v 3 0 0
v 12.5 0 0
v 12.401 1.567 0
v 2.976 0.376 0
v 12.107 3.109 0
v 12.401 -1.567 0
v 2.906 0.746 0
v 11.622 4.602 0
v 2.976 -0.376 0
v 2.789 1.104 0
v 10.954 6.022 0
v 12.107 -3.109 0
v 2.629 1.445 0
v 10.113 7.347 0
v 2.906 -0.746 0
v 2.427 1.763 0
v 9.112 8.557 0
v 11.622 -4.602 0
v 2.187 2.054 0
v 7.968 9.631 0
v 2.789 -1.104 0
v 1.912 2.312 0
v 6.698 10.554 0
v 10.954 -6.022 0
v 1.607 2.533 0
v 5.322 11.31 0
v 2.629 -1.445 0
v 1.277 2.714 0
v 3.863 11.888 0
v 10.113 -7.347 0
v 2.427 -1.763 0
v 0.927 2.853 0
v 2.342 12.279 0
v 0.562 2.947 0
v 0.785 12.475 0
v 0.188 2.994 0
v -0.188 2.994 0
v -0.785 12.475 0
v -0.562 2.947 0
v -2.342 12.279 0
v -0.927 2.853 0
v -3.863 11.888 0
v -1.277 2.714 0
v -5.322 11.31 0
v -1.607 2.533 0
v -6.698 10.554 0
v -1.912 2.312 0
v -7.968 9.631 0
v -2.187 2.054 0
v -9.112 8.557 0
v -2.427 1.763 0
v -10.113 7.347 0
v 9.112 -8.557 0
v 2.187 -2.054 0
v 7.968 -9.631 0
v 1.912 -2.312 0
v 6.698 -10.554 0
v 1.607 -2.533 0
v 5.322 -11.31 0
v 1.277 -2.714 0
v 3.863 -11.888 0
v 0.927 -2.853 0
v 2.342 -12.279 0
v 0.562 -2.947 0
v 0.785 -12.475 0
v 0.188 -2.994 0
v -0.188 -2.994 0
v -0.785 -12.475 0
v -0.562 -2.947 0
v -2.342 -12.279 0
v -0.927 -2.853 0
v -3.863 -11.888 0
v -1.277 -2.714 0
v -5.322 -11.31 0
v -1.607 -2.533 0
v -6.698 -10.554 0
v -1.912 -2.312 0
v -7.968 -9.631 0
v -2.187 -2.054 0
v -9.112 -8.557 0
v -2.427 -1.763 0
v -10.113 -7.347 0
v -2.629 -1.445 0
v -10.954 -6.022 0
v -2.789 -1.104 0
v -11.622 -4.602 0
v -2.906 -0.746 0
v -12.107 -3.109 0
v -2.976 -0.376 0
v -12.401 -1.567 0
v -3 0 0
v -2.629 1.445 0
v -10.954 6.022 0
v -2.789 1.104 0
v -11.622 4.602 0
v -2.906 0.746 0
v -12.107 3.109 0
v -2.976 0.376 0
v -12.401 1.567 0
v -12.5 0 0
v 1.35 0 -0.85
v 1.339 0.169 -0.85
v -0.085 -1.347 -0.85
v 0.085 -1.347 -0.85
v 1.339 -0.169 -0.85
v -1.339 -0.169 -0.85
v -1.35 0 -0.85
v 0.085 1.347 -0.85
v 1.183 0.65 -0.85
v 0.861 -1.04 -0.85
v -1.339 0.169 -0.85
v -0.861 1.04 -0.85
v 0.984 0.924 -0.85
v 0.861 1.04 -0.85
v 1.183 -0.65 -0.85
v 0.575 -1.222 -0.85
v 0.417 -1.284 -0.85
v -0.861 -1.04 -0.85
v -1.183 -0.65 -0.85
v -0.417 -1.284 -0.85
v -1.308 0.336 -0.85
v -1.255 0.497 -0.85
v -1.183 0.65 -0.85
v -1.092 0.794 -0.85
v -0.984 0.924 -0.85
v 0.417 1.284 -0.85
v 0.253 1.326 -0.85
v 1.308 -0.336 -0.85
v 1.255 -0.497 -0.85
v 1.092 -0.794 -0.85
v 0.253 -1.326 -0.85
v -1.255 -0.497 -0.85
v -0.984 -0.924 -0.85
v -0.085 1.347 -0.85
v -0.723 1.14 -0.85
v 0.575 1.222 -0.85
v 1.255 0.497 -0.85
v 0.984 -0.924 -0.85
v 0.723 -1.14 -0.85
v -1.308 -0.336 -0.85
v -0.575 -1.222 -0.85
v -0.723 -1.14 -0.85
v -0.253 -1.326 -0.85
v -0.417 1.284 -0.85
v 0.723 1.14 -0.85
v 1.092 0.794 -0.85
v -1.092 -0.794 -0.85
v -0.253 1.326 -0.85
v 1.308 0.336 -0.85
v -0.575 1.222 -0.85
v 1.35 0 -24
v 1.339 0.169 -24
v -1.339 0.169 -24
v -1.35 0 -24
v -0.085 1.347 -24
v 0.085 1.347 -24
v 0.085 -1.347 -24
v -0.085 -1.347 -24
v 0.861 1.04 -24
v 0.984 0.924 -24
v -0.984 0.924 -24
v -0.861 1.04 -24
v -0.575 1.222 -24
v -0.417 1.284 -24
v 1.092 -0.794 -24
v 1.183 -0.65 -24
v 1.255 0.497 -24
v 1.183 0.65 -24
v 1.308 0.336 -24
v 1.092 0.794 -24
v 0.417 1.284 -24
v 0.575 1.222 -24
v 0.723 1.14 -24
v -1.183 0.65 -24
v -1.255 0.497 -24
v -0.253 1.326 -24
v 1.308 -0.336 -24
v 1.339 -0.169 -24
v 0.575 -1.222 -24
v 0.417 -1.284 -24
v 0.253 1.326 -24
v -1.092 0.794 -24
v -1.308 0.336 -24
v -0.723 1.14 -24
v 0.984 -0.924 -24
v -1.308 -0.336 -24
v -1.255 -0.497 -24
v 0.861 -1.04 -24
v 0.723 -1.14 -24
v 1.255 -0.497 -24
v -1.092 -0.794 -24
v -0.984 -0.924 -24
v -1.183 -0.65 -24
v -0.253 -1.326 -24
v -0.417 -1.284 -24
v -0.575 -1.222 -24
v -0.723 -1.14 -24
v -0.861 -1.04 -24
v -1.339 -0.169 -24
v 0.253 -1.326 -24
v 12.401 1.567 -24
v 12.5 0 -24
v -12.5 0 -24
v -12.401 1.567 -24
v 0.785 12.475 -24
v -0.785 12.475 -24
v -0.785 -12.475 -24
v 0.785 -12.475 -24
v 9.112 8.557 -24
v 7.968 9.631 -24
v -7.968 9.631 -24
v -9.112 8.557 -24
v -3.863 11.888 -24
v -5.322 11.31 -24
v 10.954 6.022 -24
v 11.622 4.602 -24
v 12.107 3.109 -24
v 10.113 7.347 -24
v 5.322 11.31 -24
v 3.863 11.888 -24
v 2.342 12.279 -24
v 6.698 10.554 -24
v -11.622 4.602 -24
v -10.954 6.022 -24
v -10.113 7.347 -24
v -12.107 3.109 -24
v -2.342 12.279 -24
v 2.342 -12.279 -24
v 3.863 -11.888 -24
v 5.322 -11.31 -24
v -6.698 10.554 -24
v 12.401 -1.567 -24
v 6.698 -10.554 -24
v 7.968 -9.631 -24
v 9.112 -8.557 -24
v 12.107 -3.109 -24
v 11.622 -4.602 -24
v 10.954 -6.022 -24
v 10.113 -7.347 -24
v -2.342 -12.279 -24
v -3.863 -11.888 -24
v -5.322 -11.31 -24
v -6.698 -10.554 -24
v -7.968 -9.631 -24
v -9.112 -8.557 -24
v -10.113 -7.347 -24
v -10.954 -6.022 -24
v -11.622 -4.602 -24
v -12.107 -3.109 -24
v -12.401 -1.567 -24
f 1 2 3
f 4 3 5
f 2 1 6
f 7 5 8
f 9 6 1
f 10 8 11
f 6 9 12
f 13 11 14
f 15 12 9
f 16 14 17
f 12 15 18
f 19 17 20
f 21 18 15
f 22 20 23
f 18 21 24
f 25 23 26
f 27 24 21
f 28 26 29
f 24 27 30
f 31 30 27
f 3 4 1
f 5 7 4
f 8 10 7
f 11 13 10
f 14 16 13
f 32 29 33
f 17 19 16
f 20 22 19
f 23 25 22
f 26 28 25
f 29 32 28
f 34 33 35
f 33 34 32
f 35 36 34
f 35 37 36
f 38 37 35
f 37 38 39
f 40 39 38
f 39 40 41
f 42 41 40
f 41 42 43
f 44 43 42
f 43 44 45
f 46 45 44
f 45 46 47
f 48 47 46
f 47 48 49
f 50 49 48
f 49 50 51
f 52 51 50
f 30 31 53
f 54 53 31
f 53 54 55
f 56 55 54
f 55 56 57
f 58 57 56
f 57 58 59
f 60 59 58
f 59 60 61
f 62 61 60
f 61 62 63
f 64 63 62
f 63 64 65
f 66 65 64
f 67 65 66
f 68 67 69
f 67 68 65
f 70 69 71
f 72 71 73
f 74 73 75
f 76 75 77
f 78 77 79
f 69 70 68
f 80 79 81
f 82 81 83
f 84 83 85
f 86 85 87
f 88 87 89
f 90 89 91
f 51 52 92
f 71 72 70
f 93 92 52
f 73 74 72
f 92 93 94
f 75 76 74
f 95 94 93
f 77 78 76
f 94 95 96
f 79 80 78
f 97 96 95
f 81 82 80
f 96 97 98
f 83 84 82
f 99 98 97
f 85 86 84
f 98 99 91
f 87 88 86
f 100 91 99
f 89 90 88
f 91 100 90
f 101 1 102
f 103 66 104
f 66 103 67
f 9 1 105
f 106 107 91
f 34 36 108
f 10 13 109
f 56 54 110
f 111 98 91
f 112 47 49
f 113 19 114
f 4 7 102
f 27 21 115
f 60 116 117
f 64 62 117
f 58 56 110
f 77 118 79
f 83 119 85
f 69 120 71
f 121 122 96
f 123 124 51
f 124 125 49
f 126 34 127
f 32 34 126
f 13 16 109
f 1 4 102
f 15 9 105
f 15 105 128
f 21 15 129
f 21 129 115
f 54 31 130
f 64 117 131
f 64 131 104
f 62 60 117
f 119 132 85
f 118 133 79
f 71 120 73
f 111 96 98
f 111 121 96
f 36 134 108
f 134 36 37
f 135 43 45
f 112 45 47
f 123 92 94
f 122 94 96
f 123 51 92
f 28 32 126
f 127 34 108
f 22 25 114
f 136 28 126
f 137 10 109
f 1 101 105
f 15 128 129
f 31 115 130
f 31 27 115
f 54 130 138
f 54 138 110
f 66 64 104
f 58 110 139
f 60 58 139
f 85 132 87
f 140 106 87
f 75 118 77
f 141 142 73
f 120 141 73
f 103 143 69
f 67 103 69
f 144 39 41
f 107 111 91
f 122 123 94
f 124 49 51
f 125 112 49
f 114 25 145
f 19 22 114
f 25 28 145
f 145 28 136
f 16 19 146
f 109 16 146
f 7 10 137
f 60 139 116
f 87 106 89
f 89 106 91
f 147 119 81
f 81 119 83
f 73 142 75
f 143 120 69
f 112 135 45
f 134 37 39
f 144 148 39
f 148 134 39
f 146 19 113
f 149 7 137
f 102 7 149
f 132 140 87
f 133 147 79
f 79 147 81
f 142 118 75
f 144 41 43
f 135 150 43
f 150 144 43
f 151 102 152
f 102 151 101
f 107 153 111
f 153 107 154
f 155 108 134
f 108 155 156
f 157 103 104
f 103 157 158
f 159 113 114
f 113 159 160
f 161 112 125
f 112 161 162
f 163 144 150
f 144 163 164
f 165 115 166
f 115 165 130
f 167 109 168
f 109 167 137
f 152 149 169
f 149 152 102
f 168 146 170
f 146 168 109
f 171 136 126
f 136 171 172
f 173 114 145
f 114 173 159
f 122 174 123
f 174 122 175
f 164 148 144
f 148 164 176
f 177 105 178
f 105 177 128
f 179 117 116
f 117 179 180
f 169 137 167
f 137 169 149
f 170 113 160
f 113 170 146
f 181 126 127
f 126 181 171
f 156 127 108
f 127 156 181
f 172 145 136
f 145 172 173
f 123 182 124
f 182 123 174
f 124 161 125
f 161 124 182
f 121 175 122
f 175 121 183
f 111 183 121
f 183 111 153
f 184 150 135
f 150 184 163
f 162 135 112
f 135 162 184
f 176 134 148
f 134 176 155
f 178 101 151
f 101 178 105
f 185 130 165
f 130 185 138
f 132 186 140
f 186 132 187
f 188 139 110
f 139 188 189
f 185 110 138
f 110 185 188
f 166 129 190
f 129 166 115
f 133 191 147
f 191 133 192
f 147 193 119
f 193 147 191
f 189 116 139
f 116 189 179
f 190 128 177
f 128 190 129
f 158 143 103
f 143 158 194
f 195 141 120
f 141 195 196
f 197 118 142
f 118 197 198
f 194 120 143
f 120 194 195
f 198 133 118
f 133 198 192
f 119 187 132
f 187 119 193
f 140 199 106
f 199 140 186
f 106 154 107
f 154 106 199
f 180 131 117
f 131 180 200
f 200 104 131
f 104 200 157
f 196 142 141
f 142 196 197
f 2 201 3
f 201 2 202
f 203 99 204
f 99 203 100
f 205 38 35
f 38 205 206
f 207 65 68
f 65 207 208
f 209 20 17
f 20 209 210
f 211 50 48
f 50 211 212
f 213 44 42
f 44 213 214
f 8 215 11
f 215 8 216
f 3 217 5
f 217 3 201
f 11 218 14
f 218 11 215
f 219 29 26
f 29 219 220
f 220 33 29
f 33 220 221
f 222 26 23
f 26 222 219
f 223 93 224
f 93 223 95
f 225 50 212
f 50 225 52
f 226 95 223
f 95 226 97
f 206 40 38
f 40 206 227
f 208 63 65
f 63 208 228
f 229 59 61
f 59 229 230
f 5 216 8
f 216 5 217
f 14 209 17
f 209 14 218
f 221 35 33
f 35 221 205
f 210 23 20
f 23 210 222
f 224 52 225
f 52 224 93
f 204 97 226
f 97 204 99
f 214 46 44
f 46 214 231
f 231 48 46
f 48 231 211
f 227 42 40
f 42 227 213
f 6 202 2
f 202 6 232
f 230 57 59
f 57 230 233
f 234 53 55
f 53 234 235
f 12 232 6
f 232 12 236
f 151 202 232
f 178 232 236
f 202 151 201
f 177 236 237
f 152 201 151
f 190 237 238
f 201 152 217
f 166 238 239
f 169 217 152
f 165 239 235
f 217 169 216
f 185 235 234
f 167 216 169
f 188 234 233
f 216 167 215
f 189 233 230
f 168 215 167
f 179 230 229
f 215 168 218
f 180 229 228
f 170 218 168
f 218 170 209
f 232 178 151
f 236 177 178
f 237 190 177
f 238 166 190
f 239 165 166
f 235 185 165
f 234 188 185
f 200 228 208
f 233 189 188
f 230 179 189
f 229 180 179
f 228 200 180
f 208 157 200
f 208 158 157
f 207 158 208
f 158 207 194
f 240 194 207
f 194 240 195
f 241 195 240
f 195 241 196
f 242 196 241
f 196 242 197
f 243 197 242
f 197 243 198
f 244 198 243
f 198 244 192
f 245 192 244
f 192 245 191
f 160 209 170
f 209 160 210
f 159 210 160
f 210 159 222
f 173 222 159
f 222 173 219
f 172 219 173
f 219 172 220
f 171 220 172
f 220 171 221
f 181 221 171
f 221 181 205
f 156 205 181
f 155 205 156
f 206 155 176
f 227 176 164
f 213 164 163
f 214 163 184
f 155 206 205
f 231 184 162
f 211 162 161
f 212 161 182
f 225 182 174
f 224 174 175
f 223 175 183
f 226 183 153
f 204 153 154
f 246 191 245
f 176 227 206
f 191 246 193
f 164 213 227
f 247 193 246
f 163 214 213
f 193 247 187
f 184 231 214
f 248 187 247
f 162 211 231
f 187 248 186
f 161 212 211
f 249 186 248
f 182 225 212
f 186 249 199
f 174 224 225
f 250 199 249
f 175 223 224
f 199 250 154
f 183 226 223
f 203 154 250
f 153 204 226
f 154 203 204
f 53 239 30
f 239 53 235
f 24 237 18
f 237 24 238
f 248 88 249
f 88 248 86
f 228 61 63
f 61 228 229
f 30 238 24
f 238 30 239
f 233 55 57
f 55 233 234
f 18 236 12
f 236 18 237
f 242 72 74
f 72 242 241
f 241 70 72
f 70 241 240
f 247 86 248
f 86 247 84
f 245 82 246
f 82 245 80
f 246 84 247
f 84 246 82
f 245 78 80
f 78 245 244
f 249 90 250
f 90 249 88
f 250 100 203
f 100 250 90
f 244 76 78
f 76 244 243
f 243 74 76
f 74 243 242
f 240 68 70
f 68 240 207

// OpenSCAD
$fn = 50;


difference() {
	union() {
		translate(v = [0, 0, -24.0000000000]) {
			cylinder(h = 24, r = 12.5000000000);
		}
	}
	union() {
		translate(v = [0, 0, 0]) {
			rotate(a = [0, 0, 0]) {
				difference() {
					union() {
						translate(v = [0, 0, -27.0000000000]) {
							cylinder(h = 27, r = 1.0000000000);
						}
						translate(v = [0, 0, -0.8500000000]) {
							cylinder(h = 0.8500000000, r1 = 1.3500000000, r2 = 3.0000000000);
						}
						translate(v = [0, 0, -27.0000000000]) {
							cylinder(h = 27, r = 1.3500000000);
						}
						translate(v = [0, 0, -27.0000000000]) {
							cylinder(h = 27, r = 1.0000000000);
						}
					}
					union();
				}
			}
		}
	}
}
